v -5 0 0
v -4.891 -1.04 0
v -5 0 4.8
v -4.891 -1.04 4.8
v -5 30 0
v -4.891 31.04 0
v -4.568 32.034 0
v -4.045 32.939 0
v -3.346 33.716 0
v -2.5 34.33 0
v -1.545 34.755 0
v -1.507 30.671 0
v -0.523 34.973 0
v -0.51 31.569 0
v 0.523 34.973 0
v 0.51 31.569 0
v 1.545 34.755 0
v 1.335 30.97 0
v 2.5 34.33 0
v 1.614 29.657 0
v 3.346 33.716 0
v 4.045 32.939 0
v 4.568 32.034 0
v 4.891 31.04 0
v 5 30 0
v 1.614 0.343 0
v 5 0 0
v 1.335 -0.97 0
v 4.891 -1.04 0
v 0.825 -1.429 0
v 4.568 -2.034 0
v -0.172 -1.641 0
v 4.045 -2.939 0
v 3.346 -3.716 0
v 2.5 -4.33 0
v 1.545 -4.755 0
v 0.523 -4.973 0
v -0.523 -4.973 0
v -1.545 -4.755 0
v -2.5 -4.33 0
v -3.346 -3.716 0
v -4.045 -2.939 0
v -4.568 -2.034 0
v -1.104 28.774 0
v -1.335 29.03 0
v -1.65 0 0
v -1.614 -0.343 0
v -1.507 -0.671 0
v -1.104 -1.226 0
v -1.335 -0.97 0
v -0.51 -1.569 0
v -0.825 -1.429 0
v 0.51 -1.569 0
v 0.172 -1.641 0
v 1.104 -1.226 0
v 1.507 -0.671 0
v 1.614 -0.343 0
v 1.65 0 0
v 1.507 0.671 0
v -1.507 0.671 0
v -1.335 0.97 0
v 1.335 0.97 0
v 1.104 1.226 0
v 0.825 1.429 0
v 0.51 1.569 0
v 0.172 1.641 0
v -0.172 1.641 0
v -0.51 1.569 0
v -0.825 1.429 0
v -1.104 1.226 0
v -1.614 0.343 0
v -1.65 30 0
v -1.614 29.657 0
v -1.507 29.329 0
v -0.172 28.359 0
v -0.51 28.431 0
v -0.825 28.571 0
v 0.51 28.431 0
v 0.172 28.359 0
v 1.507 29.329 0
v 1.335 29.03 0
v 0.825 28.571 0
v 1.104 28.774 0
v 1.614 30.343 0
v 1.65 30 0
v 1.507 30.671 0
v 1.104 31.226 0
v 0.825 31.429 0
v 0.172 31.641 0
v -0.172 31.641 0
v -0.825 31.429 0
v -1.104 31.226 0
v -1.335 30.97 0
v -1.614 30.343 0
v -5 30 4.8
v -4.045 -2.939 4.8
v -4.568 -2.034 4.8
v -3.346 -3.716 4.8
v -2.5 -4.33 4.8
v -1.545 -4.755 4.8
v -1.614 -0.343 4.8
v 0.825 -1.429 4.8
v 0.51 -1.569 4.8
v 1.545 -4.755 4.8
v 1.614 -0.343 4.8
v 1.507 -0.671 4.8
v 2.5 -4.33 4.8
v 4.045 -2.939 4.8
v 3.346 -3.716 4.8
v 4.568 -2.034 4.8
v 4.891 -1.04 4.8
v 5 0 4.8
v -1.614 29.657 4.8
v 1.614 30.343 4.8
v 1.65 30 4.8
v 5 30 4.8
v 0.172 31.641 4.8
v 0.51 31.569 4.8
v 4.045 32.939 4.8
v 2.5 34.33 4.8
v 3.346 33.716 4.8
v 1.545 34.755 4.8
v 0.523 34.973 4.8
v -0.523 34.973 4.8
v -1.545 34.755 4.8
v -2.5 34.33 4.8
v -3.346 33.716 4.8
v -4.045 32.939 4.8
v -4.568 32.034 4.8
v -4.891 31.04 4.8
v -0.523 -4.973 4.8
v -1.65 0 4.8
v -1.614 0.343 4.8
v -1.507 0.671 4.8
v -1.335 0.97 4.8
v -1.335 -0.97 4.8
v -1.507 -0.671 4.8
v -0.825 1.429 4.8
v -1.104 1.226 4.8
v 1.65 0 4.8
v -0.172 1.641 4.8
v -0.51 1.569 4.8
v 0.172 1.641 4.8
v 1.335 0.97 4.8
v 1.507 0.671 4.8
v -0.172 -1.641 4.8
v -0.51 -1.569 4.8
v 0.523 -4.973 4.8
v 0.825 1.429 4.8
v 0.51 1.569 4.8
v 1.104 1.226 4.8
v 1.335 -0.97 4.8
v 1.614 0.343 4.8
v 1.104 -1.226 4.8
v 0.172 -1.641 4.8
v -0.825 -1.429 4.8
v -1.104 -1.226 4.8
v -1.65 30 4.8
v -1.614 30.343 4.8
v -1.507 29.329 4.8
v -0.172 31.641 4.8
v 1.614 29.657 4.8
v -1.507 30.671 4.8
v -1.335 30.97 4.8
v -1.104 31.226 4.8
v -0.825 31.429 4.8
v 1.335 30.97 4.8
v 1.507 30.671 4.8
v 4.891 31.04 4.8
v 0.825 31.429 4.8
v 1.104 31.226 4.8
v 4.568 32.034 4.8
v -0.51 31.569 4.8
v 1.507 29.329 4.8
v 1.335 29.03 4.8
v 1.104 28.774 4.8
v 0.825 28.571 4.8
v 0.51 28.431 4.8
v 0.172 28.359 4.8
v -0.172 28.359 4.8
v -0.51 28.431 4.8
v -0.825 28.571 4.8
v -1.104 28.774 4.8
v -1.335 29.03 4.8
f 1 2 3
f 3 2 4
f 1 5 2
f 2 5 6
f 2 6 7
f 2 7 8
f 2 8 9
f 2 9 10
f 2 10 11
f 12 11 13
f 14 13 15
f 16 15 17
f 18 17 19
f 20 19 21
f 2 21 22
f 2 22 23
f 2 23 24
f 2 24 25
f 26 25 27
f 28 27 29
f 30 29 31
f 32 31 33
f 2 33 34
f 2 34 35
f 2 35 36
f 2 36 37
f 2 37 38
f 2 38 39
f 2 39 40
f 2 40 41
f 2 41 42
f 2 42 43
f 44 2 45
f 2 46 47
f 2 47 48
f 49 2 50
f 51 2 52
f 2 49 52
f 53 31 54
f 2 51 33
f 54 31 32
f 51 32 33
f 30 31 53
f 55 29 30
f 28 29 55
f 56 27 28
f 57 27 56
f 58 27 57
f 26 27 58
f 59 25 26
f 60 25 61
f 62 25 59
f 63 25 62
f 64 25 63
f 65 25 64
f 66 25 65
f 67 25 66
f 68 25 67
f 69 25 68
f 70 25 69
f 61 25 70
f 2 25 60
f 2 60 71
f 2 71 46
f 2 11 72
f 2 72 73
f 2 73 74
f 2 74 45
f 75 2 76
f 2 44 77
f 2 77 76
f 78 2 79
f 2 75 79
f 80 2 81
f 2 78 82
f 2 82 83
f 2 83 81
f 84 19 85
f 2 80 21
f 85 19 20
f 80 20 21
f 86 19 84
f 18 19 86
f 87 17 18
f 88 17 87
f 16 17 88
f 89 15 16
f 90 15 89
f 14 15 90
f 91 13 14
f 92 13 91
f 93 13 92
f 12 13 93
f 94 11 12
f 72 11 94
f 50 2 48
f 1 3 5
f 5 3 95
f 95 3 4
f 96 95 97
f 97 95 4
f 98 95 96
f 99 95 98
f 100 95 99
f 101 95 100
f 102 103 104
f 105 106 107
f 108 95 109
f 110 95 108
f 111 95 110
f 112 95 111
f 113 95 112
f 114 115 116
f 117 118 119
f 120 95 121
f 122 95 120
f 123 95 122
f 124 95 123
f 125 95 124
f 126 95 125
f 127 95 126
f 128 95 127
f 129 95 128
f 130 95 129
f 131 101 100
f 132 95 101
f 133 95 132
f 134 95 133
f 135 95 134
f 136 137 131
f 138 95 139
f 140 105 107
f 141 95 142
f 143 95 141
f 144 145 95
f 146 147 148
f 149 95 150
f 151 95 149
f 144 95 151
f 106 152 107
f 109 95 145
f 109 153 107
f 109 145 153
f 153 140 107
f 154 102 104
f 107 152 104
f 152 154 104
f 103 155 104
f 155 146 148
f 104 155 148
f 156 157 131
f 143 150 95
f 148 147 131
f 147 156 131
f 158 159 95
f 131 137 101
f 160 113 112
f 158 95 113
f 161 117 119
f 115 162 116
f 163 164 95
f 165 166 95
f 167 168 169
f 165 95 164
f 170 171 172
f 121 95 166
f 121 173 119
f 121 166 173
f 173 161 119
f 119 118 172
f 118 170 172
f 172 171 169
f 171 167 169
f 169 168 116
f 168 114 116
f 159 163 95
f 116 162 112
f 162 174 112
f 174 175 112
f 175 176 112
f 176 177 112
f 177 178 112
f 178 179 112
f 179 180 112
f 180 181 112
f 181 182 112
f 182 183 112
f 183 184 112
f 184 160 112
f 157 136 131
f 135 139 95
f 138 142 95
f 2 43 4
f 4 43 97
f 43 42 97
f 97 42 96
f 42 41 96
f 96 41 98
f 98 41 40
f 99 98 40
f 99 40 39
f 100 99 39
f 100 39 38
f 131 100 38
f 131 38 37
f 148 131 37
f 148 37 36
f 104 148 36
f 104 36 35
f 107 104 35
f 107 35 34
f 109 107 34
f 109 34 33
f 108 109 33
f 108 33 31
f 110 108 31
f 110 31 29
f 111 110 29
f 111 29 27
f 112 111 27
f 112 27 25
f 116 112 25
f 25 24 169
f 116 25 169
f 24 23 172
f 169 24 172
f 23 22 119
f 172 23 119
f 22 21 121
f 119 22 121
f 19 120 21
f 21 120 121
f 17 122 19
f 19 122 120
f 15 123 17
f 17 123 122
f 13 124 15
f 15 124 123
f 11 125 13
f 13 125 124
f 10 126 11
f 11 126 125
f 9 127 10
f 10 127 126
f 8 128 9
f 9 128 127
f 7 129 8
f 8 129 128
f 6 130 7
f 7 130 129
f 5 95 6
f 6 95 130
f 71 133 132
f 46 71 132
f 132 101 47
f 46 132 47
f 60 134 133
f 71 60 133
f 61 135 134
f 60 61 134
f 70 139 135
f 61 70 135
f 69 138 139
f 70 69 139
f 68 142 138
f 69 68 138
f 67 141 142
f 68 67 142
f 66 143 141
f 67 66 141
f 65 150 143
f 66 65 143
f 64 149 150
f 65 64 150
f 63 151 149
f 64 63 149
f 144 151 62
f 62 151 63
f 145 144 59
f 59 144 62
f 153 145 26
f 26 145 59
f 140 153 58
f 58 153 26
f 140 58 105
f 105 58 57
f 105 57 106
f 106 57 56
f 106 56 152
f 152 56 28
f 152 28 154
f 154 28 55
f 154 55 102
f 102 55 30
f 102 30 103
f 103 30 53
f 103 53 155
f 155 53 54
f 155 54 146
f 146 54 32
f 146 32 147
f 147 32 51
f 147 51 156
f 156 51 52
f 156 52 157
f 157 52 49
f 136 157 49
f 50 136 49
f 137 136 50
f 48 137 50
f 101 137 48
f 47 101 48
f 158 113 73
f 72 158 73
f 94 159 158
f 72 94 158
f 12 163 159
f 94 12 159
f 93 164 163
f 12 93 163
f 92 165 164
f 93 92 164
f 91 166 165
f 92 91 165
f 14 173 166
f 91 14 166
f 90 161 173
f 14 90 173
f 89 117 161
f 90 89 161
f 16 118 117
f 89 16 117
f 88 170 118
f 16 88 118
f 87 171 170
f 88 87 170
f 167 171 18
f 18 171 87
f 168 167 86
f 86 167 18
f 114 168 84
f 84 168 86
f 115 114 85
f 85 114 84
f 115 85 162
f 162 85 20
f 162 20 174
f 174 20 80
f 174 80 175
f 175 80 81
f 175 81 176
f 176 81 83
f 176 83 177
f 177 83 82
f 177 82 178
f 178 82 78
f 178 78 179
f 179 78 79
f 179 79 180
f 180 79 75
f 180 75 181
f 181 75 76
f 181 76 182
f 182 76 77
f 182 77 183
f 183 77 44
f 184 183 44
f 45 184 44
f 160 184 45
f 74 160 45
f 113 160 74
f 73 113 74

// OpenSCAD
difference(){
hull(){
cylinder(r=10/2,h=4.8,$fn=30);
translate([0,30])cylinder(r=10/2,h=4.8,$fn=30);
}
cylinder(r=3.3/2, h=4.8, $fn=30);
translate([0,30])cylinder(r=3.3/2, h=4.8, $fn=30);
}
